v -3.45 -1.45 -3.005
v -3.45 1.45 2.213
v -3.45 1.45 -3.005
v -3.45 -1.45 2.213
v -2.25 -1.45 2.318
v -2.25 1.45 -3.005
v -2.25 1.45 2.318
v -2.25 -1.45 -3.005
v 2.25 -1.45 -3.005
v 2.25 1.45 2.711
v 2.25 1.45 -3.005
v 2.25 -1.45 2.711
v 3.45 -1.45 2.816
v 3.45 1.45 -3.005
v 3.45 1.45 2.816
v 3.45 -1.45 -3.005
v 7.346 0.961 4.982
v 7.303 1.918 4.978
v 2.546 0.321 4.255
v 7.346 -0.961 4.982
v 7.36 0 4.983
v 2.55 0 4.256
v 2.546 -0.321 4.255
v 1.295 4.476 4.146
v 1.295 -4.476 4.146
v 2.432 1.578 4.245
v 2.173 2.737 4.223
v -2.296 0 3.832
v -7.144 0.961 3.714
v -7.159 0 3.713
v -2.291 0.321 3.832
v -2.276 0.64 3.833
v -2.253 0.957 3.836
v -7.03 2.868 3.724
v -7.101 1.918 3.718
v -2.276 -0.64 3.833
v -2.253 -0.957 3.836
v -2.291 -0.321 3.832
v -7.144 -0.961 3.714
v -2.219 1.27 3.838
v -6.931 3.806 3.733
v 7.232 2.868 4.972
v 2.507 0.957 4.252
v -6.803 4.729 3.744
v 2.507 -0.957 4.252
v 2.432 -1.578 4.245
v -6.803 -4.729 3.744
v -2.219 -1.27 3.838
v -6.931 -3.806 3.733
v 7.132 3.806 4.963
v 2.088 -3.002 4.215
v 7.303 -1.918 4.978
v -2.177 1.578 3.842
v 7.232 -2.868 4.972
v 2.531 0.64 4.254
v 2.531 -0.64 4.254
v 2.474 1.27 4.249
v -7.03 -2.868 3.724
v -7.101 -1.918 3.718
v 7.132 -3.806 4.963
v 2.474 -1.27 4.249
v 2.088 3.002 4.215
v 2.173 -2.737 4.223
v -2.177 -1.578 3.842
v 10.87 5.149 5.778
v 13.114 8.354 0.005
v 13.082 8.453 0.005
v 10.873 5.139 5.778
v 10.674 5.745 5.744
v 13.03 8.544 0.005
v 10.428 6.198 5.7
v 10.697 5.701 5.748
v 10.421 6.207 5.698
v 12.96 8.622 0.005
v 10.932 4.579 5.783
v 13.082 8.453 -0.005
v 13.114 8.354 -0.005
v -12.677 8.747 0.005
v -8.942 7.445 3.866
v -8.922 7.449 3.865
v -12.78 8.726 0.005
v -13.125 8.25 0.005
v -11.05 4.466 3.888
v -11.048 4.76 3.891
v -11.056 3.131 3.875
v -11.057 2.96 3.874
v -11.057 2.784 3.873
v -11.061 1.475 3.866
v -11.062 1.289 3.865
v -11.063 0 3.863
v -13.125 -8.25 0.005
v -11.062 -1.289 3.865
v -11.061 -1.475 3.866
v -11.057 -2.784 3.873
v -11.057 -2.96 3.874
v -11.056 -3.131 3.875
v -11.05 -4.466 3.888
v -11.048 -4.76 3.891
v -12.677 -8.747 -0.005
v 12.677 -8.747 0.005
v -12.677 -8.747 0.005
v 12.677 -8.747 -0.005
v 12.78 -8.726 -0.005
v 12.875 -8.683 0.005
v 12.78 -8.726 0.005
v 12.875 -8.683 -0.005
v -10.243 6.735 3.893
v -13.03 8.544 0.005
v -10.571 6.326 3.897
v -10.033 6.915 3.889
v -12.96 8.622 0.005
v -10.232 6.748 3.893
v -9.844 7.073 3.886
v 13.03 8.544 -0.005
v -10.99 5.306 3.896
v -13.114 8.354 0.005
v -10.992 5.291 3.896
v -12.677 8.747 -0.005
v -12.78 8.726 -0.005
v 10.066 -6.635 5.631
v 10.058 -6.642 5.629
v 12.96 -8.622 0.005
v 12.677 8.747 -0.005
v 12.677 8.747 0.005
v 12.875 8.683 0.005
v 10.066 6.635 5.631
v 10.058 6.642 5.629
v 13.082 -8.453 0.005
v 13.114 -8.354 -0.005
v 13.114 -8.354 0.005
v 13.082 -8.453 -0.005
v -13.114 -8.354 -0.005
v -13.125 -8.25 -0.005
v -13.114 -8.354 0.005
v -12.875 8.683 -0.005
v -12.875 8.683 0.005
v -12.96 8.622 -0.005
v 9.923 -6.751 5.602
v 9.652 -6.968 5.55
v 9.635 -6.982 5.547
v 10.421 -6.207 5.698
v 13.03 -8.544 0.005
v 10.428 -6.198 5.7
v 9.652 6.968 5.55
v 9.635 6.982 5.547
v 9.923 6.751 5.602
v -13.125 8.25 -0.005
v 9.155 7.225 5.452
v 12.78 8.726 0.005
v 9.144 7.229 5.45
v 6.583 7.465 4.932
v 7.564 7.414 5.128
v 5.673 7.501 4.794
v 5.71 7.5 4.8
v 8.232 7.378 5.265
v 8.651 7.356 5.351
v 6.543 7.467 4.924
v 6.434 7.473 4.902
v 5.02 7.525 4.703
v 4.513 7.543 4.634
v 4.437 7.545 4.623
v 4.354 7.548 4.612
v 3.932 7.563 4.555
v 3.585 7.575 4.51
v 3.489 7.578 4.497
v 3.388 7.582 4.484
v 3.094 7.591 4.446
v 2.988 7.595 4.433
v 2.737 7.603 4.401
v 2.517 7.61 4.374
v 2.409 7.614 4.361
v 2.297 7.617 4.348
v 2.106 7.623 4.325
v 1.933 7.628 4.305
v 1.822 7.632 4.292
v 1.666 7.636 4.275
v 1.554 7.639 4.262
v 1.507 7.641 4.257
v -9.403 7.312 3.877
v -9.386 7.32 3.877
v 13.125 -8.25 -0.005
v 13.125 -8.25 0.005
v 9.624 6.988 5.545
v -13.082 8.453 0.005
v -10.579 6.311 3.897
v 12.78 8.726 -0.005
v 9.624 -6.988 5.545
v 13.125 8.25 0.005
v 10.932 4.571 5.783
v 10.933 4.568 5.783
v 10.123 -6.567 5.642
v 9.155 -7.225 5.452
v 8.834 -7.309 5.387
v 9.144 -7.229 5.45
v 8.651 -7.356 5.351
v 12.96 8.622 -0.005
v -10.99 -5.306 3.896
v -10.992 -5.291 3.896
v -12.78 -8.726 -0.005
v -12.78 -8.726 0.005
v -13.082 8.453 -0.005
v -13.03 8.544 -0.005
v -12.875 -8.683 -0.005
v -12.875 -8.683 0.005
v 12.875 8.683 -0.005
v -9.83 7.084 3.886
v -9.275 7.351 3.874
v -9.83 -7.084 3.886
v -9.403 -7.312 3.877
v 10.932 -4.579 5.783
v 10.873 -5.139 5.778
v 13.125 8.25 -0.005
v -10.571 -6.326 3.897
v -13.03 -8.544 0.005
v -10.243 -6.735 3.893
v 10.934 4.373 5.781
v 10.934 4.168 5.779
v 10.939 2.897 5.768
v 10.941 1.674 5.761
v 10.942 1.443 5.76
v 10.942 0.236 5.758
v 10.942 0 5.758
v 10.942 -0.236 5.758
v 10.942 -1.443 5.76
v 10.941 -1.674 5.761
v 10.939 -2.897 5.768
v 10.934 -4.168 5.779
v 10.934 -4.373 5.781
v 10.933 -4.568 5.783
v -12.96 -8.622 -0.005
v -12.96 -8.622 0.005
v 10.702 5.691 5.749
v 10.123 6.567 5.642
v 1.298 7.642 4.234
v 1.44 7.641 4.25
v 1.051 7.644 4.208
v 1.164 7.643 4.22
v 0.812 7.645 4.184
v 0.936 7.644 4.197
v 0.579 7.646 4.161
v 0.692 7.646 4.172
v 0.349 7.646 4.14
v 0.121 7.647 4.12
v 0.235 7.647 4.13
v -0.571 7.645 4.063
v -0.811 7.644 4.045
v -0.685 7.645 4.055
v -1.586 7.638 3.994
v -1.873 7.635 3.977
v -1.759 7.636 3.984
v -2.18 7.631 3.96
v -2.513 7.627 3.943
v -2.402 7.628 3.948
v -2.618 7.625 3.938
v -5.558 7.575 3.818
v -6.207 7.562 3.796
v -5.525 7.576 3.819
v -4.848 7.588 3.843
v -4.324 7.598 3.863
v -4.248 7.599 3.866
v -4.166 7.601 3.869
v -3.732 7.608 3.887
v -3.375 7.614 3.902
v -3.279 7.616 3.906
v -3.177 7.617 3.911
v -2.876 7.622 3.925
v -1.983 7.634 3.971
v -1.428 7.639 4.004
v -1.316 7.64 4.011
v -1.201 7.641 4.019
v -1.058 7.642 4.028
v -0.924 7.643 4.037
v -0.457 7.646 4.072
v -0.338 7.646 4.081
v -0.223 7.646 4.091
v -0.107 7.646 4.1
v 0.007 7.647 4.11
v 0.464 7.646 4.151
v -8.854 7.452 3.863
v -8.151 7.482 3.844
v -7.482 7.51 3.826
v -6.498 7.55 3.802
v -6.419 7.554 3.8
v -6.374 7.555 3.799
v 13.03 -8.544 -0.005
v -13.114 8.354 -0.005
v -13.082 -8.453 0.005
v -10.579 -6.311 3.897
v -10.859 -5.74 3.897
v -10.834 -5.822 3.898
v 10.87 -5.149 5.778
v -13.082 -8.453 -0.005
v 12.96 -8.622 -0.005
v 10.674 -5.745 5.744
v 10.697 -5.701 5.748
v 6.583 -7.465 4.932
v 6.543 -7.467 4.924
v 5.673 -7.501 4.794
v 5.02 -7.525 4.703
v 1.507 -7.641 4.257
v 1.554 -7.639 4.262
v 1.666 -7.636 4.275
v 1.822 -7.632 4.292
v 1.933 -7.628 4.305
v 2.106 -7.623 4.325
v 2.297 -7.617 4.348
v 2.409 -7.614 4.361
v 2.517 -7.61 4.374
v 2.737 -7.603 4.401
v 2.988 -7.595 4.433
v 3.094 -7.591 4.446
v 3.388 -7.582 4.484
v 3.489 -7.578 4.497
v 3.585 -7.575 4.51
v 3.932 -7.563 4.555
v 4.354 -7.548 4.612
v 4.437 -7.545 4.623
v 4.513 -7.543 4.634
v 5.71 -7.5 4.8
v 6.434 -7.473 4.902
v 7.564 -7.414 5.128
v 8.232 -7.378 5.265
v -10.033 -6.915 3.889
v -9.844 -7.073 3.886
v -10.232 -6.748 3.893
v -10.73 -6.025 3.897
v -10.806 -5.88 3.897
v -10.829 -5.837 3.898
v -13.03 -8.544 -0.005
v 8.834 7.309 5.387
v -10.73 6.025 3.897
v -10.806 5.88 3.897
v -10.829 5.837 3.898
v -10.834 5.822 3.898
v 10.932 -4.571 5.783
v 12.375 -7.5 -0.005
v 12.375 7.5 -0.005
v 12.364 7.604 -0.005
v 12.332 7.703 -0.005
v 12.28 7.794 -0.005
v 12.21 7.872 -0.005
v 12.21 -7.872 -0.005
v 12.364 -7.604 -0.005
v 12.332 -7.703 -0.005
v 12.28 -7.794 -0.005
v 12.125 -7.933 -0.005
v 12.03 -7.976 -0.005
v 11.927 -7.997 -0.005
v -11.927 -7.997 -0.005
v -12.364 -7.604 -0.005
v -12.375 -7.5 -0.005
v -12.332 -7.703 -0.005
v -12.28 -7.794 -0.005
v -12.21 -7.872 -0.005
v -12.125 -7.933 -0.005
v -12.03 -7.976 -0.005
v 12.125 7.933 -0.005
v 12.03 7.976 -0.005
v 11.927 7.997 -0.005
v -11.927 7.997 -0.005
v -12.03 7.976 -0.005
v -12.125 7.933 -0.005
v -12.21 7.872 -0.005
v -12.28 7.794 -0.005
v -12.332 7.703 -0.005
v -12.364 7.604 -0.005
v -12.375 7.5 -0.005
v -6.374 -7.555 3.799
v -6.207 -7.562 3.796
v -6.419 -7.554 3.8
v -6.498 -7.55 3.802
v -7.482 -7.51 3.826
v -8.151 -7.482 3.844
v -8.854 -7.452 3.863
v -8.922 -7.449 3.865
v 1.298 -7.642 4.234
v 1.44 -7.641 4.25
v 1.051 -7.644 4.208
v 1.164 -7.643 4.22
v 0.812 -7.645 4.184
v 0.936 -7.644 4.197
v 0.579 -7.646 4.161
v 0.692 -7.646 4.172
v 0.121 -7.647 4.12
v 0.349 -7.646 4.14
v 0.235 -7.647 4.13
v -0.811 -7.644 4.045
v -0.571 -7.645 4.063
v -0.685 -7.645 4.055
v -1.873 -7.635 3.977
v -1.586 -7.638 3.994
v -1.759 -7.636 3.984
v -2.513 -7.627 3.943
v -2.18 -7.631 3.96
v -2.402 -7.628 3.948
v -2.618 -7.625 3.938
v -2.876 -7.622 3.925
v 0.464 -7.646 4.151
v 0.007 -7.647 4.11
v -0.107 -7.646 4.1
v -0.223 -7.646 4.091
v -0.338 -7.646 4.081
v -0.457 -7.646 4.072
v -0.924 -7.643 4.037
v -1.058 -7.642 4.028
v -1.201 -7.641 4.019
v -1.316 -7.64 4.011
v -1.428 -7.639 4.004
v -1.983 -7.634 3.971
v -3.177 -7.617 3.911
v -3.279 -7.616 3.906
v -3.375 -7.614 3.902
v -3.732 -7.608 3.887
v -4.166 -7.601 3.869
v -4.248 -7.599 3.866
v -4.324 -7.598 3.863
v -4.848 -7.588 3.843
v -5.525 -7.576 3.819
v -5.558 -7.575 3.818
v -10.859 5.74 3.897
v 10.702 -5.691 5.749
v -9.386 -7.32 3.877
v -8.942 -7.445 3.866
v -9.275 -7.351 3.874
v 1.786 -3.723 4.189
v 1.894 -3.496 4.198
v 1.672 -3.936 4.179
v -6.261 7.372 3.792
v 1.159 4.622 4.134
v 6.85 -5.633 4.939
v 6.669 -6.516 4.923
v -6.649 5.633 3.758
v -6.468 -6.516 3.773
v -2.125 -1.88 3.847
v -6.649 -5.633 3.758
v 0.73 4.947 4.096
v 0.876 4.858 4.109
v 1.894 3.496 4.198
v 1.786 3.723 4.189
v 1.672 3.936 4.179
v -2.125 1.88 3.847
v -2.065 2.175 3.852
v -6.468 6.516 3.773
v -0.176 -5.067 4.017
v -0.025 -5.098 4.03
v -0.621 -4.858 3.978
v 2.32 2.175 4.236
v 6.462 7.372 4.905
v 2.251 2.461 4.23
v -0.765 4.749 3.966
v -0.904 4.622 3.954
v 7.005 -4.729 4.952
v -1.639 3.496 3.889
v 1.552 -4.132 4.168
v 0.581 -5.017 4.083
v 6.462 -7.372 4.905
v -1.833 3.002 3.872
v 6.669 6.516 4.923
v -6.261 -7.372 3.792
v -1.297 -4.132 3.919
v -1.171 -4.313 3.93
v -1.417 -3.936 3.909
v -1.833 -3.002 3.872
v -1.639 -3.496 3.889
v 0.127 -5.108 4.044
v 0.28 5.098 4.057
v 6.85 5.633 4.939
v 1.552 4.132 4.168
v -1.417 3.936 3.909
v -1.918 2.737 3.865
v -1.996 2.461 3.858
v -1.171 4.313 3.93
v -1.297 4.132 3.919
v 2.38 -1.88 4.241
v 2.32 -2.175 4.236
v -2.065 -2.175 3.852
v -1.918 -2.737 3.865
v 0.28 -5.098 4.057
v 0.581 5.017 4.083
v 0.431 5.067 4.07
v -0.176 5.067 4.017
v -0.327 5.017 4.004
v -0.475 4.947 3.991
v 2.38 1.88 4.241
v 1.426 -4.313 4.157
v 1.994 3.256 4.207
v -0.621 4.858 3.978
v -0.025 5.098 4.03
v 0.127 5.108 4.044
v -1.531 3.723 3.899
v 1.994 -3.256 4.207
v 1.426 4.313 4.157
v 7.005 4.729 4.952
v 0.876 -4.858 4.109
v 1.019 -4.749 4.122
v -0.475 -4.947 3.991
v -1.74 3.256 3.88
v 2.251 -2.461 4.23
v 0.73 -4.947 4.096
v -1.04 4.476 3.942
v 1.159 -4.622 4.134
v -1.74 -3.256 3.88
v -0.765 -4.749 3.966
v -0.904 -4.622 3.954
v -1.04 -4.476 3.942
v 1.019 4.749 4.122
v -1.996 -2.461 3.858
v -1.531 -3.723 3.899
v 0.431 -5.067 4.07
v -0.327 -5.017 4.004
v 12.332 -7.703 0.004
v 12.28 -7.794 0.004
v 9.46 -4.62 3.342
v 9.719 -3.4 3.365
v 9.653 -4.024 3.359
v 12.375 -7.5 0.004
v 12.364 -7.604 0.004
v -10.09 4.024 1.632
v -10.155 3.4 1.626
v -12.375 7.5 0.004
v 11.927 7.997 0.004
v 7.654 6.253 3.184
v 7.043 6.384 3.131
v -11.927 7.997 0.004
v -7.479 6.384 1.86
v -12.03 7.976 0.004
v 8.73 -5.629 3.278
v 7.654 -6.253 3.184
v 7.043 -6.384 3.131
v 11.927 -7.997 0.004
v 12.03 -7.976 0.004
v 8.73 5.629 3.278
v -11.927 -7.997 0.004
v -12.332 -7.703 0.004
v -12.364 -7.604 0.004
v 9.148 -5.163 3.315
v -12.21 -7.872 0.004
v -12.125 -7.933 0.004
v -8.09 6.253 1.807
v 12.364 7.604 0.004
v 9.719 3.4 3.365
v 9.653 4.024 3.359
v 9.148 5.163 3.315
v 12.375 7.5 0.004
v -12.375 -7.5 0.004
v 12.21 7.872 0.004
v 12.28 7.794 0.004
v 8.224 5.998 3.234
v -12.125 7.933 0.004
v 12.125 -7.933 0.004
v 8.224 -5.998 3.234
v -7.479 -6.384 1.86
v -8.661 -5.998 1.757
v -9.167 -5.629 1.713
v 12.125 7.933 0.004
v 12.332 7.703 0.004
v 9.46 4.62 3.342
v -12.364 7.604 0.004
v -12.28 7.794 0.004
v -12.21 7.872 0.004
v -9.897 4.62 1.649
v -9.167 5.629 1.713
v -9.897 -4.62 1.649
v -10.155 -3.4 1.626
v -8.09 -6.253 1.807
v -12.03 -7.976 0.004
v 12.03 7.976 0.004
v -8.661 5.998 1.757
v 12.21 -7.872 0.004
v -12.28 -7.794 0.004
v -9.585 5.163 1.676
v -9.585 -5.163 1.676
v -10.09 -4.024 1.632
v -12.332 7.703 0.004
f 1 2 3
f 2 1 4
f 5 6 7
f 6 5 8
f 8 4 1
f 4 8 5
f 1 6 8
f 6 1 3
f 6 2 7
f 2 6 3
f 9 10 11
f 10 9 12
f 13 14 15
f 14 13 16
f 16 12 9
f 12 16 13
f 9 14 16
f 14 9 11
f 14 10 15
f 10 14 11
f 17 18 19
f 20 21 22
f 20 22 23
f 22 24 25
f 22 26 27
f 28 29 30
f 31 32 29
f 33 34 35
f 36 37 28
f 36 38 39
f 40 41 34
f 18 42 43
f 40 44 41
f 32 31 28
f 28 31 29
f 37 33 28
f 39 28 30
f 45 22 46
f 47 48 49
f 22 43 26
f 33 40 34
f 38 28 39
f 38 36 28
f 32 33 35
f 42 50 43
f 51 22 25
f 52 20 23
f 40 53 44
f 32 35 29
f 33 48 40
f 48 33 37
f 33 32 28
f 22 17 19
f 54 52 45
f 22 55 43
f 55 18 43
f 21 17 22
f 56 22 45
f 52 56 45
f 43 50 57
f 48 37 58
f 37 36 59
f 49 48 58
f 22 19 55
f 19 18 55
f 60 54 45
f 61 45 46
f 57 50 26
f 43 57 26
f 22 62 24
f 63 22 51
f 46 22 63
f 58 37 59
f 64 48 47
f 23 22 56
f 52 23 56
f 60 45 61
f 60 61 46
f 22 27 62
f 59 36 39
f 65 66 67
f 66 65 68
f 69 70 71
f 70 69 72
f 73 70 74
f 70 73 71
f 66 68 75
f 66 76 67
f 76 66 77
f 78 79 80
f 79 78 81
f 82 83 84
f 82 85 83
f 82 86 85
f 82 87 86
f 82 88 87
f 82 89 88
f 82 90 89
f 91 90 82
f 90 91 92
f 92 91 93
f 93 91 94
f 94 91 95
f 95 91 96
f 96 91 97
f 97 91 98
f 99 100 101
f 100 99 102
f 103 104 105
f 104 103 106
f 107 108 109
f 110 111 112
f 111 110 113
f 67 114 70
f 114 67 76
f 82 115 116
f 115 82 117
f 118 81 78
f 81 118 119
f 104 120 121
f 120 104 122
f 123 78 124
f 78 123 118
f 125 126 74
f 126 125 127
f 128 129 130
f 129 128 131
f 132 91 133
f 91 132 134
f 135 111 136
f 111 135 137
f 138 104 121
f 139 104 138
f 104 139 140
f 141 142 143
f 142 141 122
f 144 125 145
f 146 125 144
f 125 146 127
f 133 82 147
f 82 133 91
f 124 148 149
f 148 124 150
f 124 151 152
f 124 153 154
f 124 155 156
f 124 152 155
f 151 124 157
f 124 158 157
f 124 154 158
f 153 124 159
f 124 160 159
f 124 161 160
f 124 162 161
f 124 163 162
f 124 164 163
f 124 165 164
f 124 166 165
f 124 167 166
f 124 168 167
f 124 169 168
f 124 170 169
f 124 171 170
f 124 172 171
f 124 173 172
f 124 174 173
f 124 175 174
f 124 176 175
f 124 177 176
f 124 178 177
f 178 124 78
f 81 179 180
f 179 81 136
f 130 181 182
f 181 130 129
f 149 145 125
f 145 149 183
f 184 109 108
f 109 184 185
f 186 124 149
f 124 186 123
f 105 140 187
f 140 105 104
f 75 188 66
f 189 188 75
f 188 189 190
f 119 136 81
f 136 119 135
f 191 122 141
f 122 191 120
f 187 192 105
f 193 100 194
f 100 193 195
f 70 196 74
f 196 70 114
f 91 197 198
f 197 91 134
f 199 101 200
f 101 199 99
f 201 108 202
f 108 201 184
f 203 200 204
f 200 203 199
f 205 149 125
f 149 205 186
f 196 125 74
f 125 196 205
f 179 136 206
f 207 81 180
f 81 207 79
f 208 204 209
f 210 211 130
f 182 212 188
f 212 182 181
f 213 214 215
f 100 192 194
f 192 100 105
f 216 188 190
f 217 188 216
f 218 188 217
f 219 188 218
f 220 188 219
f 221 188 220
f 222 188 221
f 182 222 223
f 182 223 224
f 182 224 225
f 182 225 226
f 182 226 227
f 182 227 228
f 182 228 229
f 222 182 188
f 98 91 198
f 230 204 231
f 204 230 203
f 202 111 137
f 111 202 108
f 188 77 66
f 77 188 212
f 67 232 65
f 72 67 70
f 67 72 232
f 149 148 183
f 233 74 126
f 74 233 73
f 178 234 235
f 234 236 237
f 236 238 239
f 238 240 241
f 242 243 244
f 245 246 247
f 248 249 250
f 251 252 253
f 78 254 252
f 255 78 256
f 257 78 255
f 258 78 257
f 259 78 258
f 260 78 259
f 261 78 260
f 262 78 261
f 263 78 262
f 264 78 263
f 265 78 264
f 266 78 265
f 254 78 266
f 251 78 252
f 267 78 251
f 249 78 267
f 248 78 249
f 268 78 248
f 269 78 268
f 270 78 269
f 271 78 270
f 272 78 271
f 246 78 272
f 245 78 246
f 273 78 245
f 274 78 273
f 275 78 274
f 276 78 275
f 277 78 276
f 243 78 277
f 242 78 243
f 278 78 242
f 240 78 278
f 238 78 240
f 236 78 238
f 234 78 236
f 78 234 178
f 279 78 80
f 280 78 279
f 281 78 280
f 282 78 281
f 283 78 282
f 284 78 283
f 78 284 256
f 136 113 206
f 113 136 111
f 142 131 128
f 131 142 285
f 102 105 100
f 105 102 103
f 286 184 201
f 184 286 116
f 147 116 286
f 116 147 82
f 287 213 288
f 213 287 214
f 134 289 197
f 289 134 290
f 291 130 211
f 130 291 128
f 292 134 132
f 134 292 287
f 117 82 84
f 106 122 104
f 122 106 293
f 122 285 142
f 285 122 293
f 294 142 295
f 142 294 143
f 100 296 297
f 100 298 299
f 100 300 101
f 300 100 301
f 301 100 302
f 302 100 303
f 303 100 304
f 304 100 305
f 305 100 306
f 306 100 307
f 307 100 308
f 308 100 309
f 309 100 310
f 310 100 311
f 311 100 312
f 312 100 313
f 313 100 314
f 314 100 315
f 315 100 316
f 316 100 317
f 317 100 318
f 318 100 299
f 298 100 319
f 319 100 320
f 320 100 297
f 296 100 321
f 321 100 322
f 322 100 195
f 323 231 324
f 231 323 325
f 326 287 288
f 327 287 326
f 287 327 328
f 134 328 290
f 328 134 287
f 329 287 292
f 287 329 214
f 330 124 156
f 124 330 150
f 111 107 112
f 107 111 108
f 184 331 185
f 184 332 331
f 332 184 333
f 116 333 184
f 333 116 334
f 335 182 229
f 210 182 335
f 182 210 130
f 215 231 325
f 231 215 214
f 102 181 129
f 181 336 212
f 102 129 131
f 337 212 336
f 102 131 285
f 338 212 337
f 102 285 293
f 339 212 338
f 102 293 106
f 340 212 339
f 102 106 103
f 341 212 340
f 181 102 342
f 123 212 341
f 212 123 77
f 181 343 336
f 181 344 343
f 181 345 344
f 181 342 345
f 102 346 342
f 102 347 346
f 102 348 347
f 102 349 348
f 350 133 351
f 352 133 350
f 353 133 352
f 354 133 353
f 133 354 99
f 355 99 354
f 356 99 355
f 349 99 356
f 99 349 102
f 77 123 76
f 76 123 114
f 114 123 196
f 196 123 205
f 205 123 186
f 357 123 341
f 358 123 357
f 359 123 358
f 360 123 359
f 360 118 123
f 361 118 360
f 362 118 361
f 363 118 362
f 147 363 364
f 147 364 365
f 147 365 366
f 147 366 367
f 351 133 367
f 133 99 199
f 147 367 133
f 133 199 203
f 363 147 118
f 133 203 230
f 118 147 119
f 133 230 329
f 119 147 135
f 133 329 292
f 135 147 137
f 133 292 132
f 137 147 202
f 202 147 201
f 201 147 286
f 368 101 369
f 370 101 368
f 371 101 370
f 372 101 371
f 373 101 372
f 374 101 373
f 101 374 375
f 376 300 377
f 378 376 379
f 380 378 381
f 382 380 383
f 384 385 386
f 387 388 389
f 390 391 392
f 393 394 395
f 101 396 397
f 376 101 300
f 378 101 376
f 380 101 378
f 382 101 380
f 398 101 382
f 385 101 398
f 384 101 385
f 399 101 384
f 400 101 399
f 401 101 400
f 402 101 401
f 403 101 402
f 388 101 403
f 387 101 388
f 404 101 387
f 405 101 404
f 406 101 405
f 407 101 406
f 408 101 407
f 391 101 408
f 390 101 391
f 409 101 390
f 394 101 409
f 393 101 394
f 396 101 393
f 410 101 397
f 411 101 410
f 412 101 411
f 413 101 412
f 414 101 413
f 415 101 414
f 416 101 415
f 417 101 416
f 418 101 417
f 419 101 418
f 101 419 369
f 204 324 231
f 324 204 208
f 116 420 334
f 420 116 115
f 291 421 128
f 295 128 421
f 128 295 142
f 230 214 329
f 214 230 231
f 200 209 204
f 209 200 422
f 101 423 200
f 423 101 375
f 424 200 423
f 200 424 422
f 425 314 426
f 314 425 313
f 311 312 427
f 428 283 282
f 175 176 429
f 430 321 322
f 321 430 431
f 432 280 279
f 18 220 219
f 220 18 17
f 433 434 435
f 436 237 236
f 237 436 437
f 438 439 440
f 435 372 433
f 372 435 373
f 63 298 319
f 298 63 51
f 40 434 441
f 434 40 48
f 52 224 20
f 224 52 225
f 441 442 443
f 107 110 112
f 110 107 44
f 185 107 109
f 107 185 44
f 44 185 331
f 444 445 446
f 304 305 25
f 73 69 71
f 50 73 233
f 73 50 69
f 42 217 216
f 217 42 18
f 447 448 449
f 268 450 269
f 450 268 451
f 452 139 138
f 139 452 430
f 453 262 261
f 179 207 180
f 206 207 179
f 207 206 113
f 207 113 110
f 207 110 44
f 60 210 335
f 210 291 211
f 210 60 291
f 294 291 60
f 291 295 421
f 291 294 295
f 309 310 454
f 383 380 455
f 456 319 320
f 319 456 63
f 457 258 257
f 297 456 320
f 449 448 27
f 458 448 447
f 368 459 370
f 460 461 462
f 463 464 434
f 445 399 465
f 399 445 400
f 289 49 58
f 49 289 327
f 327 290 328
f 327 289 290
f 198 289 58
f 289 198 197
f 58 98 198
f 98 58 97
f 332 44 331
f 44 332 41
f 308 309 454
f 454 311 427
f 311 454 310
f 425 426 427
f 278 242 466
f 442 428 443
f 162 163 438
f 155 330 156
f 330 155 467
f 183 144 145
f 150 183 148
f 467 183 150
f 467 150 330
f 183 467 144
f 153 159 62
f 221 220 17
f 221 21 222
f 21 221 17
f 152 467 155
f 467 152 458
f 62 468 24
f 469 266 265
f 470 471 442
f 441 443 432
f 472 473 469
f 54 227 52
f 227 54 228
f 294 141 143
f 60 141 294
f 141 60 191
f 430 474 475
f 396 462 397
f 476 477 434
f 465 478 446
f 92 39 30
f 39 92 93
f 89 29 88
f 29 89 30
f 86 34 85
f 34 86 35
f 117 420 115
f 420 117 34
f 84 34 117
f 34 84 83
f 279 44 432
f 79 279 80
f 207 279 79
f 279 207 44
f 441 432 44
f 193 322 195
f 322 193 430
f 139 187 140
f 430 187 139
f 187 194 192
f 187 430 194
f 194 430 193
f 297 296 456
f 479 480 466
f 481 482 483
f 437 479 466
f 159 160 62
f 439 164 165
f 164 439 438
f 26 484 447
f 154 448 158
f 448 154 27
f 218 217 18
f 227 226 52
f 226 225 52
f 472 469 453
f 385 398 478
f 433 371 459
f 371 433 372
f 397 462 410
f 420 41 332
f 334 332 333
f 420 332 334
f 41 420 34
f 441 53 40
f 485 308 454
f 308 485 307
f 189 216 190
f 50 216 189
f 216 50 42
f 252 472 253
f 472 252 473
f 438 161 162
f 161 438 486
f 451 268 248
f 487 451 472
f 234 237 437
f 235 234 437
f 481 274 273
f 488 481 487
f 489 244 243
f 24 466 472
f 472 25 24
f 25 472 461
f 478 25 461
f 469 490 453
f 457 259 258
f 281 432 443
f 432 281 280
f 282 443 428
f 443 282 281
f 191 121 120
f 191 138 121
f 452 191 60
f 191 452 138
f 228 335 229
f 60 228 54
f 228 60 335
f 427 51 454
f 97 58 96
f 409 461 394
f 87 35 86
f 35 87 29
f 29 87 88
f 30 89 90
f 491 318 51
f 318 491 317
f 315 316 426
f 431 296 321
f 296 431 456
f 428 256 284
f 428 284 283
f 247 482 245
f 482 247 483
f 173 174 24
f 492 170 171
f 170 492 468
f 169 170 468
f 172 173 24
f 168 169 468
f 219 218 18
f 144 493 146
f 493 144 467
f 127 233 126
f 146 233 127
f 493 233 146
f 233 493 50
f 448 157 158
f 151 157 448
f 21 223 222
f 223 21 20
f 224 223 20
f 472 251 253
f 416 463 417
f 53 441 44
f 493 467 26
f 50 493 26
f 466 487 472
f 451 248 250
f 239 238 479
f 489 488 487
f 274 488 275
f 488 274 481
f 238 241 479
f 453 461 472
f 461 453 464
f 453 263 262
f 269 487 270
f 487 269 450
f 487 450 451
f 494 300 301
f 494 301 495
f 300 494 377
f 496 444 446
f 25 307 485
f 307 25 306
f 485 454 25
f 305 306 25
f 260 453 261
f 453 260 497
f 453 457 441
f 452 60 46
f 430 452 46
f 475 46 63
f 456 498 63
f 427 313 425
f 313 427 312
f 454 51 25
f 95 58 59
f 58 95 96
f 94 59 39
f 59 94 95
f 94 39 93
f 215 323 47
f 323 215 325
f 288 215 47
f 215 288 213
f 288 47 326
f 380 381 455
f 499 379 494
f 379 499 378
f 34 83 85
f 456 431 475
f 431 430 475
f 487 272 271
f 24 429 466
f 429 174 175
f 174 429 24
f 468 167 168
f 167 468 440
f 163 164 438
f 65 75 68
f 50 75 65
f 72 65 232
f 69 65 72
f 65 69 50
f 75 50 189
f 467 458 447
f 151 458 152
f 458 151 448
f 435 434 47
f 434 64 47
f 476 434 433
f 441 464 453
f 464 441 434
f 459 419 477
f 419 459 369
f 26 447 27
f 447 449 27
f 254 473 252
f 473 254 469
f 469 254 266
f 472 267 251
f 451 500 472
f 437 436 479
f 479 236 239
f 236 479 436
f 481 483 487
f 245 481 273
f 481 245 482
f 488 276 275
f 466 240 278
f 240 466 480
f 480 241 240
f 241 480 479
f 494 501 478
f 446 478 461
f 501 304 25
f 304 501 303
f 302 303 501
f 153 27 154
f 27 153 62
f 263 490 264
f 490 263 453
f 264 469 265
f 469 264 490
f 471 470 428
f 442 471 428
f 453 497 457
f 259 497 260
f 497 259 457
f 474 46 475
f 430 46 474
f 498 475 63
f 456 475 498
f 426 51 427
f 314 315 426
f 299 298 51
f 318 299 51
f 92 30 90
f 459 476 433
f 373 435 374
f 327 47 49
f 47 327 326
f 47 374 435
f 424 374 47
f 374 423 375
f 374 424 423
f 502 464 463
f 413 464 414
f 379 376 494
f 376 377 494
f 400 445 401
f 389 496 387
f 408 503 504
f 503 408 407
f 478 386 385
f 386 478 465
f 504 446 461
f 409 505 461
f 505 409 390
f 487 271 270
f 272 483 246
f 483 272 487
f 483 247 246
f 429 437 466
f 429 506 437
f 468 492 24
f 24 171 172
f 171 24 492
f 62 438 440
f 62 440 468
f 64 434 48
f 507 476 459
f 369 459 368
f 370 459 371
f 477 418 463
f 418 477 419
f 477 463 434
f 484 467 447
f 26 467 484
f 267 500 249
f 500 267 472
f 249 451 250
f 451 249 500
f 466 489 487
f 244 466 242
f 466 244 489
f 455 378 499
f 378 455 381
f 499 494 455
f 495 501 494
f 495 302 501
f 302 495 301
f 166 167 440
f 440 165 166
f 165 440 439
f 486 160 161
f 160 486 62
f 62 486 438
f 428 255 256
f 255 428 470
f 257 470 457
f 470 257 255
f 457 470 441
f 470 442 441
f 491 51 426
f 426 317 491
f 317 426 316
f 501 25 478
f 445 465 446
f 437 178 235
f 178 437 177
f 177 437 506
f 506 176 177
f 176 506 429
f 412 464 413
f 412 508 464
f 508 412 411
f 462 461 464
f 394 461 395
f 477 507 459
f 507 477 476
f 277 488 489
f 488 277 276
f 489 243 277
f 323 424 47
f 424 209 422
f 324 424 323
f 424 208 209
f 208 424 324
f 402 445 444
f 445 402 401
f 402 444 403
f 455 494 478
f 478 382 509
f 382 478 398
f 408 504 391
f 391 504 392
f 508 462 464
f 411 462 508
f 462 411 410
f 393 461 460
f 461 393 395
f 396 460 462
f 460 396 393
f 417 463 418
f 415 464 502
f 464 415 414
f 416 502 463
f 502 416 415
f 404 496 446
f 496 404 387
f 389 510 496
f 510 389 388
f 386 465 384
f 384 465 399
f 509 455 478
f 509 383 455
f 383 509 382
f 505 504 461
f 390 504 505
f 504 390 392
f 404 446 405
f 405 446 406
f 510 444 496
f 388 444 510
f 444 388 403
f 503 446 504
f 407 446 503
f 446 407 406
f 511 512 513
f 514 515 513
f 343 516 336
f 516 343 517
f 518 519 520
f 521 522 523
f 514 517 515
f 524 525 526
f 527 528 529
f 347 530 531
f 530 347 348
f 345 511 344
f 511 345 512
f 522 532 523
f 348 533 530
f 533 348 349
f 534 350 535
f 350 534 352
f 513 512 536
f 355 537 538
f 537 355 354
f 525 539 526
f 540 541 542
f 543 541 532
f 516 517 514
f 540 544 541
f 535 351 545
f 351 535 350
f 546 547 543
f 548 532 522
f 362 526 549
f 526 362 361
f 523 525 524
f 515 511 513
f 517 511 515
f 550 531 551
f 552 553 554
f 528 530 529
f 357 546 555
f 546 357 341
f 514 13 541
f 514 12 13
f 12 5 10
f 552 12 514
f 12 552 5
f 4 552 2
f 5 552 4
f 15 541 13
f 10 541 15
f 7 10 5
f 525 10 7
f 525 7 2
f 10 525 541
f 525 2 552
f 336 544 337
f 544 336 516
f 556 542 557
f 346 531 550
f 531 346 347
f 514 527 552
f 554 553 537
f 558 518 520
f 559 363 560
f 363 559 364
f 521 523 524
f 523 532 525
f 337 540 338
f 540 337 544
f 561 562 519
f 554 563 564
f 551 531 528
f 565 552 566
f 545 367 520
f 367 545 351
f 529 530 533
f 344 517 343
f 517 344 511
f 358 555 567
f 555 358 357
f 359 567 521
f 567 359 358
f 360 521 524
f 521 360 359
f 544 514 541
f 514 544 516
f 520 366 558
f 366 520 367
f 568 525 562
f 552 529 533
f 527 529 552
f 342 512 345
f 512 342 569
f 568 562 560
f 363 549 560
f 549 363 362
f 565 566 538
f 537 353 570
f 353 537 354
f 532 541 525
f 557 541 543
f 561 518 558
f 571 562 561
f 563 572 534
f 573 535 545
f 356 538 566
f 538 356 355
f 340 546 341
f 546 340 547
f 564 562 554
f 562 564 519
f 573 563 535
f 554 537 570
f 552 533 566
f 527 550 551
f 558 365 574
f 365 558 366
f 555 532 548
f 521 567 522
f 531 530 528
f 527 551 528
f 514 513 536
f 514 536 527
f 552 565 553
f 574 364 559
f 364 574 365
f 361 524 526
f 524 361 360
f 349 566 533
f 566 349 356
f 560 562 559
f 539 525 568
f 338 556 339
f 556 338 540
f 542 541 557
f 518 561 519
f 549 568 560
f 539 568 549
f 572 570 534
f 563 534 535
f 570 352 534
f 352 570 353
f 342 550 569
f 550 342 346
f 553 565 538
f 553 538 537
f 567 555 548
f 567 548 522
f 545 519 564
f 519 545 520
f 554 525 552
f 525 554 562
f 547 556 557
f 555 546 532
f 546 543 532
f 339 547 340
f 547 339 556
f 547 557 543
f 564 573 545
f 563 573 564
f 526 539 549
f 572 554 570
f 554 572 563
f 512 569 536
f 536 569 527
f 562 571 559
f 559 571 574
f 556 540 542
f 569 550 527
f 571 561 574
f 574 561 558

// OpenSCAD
union () {
  difference () {
    translate ([-2.85, 0, 0]) {
      union () {
        color ([0, 1, 0, ]) {
          hull () {
            translate ([0, 0, 5]) {
              cube ([1.2, 2.9, 0.01], center=true);
            }
            translate ([0, 0, -3]) {
              translate ([0, 0, 0]) {
                cube ([1.2, 2.9, 0.01], center=true);
              }
            }
          }
        }
        color ([0, 1, 0, ]) {
          hull () {
            translate ([5.7, 0, 5]) {
              cube ([1.2, 2.9, 0.01], center=true);
            }
            translate ([0, 0, -3]) {
              translate ([5.7, 0, 0]) {
                cube ([1.2, 2.9, 0.01], center=true);
              }
            }
          }
        }
      }
    }
    translate ([0, 0, 5.5]) {
      rotate ([0.0,-5.000000000000001,0.0]) {
        translate ([0, 0, 75.93375000000005]) {
          scale ([1, 2.1, 1]) {
            sphere ($fn=100, r=77.43375000000005);
          }
        }
      }
    }
  }
  difference () {
    difference () {
      hull () {
        translate ([0, 0, 5.5]) {
          rotate ([0.0,-5.000000000000001,0.0]) {
            minkowski () {
              cube ([15.450000000000003, 8.3, 0.0099], center=true);
              cylinder ($fs=0.1, h=1.0E-4, r=3, center=true);
            }
          }
        }
        minkowski () {
          cube ([25.25, 16.5, 0.0099], center=true);
          cylinder ($fs=0.1, h=1.0E-4, r=0.5, center=true);
        }
      }
      translate ([0, 0, 5.5]) {
        rotate ([0.0,-5.000000000000001,0.0]) {
          translate ([0, 0, 75.93375000000005]) {
            scale ([1, 2.1, 1]) {
              sphere ($fn=100, r=77.43375000000005);
            }
          }
        }
      }
    }
    #union () {
      hull () {
        rotate ([0.0,-5.000000000000001,0.0]) {
          translate ([0, 0, 2.5]) {
            minkowski () {
              cube ([13.950000000000003, 6.800000000000001, 0.0099], center=true);
              cylinder ($fs=0.1, h=1.0E-4, r=3, center=true);
            }
          }
        }
        translate ([0, 0, -0.001]) {
          minkowski () {
            cube ([23.75, 15.0, 0.0099], center=true);
            cylinder ($fs=0.1, h=1.0E-4, r=0.5, center=true);
          }
        }
      }
    }
  }
}
